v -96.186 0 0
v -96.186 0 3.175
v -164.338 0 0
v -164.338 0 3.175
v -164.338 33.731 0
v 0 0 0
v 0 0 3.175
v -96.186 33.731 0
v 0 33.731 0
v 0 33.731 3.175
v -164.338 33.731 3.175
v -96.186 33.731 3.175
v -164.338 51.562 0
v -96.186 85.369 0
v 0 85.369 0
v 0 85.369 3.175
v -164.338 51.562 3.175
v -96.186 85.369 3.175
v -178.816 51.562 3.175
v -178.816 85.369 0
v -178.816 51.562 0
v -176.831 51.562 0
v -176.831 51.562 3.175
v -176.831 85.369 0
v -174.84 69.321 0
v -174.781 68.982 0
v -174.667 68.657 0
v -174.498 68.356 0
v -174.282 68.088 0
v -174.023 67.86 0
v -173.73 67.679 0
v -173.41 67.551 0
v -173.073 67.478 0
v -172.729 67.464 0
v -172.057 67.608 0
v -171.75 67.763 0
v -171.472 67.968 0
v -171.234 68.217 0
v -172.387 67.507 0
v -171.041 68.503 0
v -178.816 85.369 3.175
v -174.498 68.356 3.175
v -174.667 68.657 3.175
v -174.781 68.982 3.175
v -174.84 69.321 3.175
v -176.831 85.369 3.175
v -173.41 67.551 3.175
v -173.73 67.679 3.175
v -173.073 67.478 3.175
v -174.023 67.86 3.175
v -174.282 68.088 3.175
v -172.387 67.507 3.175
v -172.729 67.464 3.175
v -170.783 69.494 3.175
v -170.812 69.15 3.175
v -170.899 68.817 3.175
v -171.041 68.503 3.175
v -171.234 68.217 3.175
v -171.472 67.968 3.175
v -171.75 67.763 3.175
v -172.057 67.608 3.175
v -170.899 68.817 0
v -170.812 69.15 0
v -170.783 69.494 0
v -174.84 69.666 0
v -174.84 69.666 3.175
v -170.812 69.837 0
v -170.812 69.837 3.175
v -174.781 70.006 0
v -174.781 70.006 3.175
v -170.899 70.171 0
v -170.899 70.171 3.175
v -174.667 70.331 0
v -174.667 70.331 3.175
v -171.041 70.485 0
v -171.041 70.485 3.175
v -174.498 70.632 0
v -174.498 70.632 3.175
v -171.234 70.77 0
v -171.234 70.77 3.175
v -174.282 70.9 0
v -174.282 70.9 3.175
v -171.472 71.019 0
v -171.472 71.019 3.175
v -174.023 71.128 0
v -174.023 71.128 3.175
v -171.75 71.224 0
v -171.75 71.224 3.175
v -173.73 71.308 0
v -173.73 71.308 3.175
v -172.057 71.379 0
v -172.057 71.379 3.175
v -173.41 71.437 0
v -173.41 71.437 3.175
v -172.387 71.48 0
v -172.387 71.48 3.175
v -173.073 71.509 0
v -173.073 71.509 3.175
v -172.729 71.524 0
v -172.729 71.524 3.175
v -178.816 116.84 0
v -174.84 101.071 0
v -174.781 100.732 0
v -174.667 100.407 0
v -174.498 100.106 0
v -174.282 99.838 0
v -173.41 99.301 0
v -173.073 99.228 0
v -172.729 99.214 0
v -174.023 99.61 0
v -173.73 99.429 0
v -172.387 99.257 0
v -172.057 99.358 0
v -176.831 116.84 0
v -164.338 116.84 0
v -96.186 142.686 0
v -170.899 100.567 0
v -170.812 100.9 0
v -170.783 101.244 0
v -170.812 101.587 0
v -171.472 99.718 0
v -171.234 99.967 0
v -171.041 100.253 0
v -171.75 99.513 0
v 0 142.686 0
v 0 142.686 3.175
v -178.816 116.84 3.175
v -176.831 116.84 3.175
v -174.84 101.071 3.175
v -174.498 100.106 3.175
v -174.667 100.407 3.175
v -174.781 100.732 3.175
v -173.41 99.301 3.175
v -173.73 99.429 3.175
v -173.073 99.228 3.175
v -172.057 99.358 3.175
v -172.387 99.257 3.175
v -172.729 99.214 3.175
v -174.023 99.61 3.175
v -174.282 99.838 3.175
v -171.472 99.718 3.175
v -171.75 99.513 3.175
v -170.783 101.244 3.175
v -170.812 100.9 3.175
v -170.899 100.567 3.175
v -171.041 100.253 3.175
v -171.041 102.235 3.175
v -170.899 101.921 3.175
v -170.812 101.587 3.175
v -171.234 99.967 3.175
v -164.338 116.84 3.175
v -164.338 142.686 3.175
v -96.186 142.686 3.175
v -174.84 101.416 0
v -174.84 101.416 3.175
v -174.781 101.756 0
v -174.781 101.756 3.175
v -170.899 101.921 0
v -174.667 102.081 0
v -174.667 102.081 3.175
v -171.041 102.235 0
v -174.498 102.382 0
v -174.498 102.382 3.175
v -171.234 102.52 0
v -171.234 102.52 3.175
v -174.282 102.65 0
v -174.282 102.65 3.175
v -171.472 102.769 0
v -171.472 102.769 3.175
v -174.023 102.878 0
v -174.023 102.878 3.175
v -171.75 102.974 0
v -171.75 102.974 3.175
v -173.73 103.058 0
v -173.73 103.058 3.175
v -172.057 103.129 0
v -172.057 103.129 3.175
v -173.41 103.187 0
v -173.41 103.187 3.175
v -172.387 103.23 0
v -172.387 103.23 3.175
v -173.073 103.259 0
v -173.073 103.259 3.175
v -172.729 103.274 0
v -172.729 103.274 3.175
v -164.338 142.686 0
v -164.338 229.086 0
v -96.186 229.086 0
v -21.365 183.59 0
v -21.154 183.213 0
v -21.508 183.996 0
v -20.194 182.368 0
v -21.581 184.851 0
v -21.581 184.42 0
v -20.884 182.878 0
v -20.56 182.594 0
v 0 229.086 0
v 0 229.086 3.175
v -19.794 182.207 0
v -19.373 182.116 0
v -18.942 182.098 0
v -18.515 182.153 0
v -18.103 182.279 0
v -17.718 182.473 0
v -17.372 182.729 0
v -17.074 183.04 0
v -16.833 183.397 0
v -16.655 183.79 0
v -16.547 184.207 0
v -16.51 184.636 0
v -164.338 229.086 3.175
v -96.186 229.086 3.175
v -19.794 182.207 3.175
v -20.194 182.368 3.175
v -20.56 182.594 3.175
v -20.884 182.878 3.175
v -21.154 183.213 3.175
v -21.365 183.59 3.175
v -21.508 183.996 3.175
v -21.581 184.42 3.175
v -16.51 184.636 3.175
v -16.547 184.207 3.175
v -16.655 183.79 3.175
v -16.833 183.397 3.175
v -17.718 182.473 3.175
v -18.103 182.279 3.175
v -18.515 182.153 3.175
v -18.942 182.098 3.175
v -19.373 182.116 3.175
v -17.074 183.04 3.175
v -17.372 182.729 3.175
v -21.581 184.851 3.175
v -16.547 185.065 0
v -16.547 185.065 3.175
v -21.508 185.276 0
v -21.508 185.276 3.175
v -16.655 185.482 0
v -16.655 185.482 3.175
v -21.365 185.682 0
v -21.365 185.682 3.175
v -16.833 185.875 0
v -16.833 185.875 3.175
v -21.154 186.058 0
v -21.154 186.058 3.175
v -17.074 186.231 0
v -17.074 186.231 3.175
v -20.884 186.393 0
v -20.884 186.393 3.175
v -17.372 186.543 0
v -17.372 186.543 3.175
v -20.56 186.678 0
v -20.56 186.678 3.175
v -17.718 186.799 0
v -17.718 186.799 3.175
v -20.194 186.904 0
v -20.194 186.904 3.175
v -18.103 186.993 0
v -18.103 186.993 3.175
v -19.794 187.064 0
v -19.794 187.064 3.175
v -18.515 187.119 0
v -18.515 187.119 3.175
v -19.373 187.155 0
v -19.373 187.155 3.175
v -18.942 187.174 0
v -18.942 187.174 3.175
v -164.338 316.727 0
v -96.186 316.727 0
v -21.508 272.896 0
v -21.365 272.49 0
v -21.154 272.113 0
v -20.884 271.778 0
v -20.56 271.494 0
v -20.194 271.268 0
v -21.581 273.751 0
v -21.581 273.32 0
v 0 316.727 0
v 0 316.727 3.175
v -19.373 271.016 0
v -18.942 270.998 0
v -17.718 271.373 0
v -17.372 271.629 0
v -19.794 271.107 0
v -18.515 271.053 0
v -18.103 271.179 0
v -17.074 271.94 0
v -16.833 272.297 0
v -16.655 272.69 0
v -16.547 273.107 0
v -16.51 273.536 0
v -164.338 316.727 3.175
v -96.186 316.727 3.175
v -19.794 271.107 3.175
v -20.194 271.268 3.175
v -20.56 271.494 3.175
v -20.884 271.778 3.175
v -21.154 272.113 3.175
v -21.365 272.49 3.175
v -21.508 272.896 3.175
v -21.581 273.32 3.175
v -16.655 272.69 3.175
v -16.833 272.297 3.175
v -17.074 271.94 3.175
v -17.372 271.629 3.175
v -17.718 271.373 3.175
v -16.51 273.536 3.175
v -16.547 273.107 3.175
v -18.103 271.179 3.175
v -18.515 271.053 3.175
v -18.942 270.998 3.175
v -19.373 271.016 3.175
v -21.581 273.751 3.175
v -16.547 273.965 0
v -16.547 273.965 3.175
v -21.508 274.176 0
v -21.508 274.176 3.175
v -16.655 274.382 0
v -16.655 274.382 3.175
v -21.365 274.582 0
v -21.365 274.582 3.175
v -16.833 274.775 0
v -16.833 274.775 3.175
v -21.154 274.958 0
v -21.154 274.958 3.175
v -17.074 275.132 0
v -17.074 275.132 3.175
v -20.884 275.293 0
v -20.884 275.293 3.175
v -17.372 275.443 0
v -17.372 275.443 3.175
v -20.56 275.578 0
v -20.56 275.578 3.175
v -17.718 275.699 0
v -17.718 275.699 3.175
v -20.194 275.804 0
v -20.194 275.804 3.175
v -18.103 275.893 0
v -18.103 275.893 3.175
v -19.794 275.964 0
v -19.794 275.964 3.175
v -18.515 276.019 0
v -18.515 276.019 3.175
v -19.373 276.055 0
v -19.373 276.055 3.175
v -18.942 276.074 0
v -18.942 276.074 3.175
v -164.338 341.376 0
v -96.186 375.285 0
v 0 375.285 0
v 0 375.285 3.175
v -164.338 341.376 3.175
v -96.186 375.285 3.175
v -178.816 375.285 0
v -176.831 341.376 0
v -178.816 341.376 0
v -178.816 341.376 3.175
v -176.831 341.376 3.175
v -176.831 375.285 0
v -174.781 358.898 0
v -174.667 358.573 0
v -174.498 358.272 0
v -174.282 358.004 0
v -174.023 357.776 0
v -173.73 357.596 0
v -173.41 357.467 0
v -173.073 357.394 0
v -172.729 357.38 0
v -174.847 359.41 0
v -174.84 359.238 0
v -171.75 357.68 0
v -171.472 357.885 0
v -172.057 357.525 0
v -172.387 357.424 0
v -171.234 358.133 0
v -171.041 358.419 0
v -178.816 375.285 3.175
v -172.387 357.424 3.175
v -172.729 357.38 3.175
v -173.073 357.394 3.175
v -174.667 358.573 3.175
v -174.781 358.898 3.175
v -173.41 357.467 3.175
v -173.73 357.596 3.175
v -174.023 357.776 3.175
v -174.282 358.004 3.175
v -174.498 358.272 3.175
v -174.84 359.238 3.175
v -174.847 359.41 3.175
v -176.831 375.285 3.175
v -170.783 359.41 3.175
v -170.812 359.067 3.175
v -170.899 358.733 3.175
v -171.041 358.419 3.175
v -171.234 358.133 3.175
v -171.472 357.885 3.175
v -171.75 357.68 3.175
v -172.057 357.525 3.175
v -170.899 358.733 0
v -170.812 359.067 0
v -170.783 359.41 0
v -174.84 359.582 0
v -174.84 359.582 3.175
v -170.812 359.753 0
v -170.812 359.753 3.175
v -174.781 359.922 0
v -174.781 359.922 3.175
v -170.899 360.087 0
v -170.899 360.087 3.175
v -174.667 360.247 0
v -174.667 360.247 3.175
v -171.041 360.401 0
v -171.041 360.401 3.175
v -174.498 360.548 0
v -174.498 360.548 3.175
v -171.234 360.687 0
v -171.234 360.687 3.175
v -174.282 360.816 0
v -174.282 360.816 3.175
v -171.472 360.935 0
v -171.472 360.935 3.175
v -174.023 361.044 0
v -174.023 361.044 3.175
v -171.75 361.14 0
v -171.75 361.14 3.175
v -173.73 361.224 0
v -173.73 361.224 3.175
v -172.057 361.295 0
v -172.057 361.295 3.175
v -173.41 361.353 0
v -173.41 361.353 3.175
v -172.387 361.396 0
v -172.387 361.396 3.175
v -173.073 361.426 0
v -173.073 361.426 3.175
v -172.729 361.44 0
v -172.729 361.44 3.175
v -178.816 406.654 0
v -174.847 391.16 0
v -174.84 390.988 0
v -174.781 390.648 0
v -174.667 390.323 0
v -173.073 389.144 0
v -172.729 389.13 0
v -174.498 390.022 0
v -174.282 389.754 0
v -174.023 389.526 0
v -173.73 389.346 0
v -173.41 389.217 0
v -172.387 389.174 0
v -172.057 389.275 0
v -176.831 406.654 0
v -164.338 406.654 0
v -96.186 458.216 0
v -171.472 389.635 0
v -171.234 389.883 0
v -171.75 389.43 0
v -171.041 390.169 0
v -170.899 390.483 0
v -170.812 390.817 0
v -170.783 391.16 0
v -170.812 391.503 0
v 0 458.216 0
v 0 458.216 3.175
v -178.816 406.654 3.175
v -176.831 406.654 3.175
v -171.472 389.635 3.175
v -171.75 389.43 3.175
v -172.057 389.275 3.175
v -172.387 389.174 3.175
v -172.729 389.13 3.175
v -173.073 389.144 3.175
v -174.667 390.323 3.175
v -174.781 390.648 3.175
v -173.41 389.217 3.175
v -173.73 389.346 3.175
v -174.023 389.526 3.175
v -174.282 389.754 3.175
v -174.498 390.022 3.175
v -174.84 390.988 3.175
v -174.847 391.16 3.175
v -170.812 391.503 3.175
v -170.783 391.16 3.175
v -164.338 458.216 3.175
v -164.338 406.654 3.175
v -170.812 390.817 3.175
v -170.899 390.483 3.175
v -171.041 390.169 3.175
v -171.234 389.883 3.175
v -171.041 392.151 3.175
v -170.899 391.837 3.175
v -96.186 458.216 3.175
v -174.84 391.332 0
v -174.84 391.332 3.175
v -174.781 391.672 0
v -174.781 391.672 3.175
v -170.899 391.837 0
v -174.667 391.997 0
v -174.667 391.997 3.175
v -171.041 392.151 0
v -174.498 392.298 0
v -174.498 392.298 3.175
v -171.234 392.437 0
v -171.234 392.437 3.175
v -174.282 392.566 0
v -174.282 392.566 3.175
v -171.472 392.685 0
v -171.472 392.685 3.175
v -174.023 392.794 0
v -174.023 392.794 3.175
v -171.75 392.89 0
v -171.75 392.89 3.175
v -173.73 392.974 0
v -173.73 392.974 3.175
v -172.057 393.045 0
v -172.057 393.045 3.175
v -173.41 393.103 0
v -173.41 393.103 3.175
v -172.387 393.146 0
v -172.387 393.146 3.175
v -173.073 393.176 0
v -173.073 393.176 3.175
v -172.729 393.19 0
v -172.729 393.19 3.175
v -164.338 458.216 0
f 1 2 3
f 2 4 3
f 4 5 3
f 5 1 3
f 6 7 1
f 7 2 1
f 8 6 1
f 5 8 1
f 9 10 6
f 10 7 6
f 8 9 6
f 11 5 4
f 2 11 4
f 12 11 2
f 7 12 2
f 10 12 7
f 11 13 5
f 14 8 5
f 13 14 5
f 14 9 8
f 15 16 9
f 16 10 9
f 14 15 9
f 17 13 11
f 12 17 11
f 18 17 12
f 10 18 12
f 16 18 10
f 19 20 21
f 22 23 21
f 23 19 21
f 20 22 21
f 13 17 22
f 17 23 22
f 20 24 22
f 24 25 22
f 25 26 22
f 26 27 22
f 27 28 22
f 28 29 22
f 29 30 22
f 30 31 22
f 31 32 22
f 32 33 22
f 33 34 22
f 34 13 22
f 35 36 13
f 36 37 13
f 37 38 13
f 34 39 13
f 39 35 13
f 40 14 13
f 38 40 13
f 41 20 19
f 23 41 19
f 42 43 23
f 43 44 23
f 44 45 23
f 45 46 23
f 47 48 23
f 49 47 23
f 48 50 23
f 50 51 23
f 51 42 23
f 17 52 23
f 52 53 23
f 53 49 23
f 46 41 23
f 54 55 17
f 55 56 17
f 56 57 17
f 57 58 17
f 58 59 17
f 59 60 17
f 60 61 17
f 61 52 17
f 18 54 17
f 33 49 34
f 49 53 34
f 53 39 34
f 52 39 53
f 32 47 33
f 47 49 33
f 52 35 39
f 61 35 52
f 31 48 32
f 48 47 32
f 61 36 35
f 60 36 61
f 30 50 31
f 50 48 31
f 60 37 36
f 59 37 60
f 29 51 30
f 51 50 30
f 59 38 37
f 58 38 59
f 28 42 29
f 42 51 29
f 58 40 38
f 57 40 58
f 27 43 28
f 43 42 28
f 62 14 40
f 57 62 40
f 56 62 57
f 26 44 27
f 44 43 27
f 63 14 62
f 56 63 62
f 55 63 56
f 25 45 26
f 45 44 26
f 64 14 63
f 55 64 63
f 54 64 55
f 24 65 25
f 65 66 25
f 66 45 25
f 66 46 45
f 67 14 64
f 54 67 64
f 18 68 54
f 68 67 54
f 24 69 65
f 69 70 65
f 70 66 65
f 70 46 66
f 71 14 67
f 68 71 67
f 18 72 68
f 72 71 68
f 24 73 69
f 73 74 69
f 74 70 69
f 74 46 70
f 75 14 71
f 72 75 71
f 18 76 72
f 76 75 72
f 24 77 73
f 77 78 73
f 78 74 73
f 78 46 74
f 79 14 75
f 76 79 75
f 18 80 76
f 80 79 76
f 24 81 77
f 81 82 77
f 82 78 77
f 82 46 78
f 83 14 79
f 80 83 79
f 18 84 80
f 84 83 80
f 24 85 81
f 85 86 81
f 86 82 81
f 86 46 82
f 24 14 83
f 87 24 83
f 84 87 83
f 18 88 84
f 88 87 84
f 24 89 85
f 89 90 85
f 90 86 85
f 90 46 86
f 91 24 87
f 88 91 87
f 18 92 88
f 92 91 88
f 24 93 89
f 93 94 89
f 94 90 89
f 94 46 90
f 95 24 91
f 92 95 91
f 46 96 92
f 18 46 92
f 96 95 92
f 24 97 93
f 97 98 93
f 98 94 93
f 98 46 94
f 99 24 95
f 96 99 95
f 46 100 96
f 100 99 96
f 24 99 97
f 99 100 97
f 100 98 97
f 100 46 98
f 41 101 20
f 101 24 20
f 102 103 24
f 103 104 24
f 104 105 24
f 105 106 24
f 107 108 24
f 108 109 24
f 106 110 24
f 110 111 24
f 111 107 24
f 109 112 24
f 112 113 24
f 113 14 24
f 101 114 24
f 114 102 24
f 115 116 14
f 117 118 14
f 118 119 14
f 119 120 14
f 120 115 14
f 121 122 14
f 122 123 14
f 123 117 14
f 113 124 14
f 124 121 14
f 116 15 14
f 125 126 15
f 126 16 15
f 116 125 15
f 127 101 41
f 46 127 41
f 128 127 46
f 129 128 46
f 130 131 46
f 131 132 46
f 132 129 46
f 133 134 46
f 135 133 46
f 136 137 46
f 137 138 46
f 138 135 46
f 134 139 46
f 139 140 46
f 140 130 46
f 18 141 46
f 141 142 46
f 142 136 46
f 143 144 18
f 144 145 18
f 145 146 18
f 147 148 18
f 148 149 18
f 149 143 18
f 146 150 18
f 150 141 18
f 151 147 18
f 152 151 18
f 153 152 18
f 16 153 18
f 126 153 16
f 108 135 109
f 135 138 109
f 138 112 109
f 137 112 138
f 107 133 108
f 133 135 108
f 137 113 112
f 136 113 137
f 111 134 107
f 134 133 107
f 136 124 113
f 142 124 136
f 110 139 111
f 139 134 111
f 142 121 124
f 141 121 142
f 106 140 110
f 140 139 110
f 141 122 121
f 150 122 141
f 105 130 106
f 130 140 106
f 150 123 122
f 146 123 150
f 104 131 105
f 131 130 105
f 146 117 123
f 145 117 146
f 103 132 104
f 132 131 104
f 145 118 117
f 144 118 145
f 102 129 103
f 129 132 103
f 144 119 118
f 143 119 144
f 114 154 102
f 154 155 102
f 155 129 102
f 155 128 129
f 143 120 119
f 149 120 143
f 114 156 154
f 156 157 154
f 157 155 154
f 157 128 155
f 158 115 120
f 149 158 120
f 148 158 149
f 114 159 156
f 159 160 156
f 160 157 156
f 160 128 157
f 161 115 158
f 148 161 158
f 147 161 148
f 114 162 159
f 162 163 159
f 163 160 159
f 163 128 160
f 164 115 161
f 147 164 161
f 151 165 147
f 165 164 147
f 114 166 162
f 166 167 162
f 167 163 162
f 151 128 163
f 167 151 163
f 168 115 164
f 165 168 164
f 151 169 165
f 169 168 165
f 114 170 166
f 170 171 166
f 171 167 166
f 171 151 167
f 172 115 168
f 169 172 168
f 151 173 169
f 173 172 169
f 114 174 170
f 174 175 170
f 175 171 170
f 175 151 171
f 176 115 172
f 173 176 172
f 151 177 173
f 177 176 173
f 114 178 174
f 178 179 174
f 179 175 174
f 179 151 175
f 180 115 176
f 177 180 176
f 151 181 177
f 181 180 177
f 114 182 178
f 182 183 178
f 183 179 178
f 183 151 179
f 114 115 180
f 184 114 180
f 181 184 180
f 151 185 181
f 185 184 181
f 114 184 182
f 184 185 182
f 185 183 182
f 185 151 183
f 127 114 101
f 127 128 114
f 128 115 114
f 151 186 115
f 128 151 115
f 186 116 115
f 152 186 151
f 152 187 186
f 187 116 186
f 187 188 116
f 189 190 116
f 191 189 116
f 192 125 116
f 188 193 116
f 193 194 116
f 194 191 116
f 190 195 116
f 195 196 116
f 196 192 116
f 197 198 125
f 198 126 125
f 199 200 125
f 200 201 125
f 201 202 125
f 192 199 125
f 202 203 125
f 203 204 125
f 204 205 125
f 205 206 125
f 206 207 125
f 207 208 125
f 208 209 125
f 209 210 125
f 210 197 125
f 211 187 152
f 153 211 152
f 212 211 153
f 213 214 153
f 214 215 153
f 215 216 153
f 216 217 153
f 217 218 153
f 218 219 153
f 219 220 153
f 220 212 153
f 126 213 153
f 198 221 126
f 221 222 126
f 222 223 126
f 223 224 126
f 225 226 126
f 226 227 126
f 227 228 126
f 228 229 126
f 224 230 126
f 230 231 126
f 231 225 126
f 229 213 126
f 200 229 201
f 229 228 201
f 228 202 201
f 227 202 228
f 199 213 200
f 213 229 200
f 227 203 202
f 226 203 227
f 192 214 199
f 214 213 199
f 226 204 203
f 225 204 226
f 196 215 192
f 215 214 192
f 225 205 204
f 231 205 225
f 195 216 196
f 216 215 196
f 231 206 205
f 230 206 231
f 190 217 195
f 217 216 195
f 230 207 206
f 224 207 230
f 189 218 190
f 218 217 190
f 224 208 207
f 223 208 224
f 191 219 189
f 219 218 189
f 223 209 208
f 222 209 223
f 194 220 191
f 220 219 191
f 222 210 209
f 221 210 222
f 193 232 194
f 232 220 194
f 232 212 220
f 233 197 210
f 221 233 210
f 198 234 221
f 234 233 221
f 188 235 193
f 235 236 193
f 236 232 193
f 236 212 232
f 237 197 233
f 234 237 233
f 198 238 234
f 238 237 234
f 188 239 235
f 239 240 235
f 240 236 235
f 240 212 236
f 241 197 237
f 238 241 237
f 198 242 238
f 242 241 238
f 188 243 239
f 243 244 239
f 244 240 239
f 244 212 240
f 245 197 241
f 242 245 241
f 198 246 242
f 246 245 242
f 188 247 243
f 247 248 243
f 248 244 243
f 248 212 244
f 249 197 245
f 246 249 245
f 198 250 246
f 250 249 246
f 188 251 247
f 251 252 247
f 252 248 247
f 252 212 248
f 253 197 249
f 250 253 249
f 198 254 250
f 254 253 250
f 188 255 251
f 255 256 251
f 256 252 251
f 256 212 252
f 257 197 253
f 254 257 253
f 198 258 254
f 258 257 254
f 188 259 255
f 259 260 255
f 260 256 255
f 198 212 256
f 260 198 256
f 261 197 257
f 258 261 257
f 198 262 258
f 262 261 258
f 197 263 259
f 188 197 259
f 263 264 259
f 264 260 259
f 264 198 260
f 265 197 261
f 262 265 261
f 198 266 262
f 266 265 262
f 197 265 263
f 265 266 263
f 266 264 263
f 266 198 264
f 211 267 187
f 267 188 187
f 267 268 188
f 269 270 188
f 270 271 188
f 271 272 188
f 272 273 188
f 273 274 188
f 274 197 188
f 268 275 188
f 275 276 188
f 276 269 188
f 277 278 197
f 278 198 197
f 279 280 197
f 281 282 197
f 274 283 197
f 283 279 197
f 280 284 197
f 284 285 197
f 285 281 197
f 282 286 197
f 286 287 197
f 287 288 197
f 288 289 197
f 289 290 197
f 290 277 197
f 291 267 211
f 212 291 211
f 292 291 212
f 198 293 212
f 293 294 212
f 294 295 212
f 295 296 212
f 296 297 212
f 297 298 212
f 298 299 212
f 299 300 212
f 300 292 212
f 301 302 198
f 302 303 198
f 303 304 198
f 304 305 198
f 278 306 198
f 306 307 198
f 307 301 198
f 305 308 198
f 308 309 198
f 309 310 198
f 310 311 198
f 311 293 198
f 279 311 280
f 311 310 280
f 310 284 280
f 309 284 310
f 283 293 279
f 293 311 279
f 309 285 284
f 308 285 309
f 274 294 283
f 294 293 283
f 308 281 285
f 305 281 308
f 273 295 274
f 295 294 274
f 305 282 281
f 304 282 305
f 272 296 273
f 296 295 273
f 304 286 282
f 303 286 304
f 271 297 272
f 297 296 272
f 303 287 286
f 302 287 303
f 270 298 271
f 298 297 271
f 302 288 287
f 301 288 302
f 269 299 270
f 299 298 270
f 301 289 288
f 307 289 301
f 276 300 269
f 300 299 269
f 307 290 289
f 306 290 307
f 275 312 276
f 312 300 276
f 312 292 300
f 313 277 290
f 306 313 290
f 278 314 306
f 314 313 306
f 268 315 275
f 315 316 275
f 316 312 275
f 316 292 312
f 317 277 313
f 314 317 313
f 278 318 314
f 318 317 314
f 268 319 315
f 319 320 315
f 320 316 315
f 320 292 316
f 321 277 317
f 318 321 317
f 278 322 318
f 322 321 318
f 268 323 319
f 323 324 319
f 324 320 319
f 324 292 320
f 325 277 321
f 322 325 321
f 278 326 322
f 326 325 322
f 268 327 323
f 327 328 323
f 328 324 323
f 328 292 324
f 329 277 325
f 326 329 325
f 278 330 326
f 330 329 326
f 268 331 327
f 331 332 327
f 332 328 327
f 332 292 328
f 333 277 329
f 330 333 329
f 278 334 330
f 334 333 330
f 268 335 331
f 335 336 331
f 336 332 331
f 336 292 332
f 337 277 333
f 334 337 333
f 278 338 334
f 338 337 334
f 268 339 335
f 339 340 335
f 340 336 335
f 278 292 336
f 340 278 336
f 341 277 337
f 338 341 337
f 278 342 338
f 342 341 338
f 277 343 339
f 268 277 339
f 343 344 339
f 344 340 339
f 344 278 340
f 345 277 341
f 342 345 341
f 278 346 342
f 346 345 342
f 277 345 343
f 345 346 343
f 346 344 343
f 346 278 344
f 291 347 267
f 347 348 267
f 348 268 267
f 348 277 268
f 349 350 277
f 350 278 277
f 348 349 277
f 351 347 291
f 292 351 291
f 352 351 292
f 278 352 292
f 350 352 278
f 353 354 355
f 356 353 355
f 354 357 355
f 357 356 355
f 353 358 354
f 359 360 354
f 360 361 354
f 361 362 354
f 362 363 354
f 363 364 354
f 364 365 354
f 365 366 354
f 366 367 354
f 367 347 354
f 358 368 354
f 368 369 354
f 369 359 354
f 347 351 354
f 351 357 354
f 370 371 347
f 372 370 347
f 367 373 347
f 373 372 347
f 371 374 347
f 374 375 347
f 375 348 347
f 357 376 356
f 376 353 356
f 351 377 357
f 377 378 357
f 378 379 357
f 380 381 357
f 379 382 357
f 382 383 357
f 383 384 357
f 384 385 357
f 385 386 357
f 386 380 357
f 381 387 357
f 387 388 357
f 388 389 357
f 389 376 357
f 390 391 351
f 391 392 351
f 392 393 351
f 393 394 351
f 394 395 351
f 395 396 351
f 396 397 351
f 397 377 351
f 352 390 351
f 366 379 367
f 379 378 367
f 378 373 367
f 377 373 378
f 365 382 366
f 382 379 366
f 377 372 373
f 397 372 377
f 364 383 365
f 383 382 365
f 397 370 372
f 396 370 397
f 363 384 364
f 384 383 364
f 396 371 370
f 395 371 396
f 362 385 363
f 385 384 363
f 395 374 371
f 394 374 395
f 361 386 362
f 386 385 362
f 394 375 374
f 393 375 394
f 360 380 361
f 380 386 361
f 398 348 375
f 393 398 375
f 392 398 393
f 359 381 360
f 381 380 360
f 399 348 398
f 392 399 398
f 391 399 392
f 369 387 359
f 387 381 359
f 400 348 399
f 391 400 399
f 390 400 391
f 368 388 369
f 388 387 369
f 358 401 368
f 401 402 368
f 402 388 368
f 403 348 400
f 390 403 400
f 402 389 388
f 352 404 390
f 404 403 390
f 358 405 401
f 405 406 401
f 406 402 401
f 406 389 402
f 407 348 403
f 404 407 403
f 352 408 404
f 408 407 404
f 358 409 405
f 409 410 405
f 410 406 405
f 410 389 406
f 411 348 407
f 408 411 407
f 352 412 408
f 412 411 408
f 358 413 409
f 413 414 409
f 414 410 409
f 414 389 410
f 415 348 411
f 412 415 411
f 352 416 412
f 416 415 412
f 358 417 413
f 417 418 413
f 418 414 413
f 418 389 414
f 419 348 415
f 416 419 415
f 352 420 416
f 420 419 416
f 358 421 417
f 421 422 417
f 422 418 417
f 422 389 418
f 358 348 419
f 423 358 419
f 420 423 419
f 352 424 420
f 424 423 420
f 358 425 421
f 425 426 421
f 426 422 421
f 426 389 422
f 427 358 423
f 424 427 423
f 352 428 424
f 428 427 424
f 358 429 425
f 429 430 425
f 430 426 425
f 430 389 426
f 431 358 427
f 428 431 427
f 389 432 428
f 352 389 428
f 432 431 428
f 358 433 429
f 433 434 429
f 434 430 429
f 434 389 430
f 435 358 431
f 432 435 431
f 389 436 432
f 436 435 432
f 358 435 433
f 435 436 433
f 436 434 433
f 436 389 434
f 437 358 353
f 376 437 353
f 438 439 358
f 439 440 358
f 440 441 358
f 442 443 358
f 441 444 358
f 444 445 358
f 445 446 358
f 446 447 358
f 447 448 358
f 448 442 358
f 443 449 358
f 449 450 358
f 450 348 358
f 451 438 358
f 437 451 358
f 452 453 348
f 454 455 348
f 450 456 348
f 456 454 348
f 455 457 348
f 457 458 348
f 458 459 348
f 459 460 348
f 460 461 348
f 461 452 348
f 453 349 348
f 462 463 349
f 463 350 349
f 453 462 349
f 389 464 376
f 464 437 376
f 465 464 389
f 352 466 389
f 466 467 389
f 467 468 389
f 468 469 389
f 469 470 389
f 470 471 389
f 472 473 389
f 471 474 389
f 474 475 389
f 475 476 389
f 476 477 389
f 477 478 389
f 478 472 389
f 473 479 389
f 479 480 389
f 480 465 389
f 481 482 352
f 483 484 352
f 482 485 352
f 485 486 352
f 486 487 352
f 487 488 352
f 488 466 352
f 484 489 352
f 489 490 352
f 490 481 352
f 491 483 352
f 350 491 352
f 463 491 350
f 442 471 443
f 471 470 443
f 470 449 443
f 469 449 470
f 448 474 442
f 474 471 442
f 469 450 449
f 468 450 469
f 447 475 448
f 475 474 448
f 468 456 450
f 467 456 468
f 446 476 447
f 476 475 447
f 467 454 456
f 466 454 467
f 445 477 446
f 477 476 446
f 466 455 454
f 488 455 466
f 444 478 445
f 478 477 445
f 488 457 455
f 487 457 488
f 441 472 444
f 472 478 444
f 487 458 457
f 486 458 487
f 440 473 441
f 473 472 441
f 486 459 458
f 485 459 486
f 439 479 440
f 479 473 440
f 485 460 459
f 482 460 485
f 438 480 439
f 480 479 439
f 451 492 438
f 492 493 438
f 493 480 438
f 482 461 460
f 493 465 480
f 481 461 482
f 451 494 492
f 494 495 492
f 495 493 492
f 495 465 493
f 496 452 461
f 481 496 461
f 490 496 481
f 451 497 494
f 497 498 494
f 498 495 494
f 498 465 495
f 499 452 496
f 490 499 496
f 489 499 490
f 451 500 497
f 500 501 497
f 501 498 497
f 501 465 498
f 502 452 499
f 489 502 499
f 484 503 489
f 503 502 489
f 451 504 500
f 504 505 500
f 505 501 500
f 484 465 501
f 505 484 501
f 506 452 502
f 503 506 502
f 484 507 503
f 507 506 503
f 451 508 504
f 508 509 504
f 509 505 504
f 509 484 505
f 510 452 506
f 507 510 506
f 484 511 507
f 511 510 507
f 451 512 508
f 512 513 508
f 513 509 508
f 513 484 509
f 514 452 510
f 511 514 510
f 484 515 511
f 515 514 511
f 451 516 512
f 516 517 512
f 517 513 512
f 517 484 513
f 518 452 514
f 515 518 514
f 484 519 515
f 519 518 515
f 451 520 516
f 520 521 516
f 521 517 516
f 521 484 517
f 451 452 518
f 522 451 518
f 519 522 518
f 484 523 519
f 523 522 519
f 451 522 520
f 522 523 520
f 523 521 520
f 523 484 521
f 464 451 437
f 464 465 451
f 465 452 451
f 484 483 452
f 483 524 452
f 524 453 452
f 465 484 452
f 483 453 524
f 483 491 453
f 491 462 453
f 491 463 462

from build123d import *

# Parameters (mm, degrees)
SKETCH1_W           = 164.338
SKETCH1_H           = 458.216
SKETCH1_W_2         = 14.478
SKETCH1_H_2         = 65.278
BOSS_EXTRUDE3_DEPTH = 3.175
SKETCH2_R           = 2.032
CUT_EXTRUDE1_DEPTH  = 4.175
SKETCH4_R           = 2.54
CUT_EXTRUDE3_DEPTH  = 4.175


with BuildPart() as part:
    # Sketch1 → Boss-Extrude3 (new body)
    with BuildSketch(Plane.XY):
        with Locations((-82.169, 229.108)):
            Rectangle(SKETCH1_W, SKETCH1_H)
        with Locations((-171.577, 84.201)):
            Rectangle(SKETCH1_W_2, SKETCH1_H_2)
        with Locations((-171.577, 374.015)):
            Rectangle(SKETCH1_W_2, SKETCH1_H_2)
    extrude(amount=BOSS_EXTRUDE3_DEPTH)

    # Sketch2 → Cut-Extrude1 (cut, through all)
    with BuildSketch(Plane.XY.offset(3.175)):
        with Locations((-172.814936246, 69.493794716)):
            Circle(SKETCH2_R)
        with Locations((-172.814936246, 101.243794716)):
            Circle(SKETCH2_R)
        with Locations((-172.814936246, 391.16)):
            Circle(SKETCH2_R)
        with Locations((-172.814936246, 359.41)):
            Circle(SKETCH2_R)
    extrude(amount=-CUT_EXTRUDE1_DEPTH, mode=Mode.SUBTRACT)

    # Sketch4 → Cut-Extrude3 (cut, through all)
    with BuildSketch(Plane.XY.offset(3.175)):
        with Locations((-19.05, 184.635815808)):
            Circle(SKETCH4_R)
        with Locations((-19.05, 273.535815808)):
            Circle(SKETCH4_R)
    extrude(amount=-CUT_EXTRUDE3_DEPTH, mode=Mode.SUBTRACT)


solid = part.part
